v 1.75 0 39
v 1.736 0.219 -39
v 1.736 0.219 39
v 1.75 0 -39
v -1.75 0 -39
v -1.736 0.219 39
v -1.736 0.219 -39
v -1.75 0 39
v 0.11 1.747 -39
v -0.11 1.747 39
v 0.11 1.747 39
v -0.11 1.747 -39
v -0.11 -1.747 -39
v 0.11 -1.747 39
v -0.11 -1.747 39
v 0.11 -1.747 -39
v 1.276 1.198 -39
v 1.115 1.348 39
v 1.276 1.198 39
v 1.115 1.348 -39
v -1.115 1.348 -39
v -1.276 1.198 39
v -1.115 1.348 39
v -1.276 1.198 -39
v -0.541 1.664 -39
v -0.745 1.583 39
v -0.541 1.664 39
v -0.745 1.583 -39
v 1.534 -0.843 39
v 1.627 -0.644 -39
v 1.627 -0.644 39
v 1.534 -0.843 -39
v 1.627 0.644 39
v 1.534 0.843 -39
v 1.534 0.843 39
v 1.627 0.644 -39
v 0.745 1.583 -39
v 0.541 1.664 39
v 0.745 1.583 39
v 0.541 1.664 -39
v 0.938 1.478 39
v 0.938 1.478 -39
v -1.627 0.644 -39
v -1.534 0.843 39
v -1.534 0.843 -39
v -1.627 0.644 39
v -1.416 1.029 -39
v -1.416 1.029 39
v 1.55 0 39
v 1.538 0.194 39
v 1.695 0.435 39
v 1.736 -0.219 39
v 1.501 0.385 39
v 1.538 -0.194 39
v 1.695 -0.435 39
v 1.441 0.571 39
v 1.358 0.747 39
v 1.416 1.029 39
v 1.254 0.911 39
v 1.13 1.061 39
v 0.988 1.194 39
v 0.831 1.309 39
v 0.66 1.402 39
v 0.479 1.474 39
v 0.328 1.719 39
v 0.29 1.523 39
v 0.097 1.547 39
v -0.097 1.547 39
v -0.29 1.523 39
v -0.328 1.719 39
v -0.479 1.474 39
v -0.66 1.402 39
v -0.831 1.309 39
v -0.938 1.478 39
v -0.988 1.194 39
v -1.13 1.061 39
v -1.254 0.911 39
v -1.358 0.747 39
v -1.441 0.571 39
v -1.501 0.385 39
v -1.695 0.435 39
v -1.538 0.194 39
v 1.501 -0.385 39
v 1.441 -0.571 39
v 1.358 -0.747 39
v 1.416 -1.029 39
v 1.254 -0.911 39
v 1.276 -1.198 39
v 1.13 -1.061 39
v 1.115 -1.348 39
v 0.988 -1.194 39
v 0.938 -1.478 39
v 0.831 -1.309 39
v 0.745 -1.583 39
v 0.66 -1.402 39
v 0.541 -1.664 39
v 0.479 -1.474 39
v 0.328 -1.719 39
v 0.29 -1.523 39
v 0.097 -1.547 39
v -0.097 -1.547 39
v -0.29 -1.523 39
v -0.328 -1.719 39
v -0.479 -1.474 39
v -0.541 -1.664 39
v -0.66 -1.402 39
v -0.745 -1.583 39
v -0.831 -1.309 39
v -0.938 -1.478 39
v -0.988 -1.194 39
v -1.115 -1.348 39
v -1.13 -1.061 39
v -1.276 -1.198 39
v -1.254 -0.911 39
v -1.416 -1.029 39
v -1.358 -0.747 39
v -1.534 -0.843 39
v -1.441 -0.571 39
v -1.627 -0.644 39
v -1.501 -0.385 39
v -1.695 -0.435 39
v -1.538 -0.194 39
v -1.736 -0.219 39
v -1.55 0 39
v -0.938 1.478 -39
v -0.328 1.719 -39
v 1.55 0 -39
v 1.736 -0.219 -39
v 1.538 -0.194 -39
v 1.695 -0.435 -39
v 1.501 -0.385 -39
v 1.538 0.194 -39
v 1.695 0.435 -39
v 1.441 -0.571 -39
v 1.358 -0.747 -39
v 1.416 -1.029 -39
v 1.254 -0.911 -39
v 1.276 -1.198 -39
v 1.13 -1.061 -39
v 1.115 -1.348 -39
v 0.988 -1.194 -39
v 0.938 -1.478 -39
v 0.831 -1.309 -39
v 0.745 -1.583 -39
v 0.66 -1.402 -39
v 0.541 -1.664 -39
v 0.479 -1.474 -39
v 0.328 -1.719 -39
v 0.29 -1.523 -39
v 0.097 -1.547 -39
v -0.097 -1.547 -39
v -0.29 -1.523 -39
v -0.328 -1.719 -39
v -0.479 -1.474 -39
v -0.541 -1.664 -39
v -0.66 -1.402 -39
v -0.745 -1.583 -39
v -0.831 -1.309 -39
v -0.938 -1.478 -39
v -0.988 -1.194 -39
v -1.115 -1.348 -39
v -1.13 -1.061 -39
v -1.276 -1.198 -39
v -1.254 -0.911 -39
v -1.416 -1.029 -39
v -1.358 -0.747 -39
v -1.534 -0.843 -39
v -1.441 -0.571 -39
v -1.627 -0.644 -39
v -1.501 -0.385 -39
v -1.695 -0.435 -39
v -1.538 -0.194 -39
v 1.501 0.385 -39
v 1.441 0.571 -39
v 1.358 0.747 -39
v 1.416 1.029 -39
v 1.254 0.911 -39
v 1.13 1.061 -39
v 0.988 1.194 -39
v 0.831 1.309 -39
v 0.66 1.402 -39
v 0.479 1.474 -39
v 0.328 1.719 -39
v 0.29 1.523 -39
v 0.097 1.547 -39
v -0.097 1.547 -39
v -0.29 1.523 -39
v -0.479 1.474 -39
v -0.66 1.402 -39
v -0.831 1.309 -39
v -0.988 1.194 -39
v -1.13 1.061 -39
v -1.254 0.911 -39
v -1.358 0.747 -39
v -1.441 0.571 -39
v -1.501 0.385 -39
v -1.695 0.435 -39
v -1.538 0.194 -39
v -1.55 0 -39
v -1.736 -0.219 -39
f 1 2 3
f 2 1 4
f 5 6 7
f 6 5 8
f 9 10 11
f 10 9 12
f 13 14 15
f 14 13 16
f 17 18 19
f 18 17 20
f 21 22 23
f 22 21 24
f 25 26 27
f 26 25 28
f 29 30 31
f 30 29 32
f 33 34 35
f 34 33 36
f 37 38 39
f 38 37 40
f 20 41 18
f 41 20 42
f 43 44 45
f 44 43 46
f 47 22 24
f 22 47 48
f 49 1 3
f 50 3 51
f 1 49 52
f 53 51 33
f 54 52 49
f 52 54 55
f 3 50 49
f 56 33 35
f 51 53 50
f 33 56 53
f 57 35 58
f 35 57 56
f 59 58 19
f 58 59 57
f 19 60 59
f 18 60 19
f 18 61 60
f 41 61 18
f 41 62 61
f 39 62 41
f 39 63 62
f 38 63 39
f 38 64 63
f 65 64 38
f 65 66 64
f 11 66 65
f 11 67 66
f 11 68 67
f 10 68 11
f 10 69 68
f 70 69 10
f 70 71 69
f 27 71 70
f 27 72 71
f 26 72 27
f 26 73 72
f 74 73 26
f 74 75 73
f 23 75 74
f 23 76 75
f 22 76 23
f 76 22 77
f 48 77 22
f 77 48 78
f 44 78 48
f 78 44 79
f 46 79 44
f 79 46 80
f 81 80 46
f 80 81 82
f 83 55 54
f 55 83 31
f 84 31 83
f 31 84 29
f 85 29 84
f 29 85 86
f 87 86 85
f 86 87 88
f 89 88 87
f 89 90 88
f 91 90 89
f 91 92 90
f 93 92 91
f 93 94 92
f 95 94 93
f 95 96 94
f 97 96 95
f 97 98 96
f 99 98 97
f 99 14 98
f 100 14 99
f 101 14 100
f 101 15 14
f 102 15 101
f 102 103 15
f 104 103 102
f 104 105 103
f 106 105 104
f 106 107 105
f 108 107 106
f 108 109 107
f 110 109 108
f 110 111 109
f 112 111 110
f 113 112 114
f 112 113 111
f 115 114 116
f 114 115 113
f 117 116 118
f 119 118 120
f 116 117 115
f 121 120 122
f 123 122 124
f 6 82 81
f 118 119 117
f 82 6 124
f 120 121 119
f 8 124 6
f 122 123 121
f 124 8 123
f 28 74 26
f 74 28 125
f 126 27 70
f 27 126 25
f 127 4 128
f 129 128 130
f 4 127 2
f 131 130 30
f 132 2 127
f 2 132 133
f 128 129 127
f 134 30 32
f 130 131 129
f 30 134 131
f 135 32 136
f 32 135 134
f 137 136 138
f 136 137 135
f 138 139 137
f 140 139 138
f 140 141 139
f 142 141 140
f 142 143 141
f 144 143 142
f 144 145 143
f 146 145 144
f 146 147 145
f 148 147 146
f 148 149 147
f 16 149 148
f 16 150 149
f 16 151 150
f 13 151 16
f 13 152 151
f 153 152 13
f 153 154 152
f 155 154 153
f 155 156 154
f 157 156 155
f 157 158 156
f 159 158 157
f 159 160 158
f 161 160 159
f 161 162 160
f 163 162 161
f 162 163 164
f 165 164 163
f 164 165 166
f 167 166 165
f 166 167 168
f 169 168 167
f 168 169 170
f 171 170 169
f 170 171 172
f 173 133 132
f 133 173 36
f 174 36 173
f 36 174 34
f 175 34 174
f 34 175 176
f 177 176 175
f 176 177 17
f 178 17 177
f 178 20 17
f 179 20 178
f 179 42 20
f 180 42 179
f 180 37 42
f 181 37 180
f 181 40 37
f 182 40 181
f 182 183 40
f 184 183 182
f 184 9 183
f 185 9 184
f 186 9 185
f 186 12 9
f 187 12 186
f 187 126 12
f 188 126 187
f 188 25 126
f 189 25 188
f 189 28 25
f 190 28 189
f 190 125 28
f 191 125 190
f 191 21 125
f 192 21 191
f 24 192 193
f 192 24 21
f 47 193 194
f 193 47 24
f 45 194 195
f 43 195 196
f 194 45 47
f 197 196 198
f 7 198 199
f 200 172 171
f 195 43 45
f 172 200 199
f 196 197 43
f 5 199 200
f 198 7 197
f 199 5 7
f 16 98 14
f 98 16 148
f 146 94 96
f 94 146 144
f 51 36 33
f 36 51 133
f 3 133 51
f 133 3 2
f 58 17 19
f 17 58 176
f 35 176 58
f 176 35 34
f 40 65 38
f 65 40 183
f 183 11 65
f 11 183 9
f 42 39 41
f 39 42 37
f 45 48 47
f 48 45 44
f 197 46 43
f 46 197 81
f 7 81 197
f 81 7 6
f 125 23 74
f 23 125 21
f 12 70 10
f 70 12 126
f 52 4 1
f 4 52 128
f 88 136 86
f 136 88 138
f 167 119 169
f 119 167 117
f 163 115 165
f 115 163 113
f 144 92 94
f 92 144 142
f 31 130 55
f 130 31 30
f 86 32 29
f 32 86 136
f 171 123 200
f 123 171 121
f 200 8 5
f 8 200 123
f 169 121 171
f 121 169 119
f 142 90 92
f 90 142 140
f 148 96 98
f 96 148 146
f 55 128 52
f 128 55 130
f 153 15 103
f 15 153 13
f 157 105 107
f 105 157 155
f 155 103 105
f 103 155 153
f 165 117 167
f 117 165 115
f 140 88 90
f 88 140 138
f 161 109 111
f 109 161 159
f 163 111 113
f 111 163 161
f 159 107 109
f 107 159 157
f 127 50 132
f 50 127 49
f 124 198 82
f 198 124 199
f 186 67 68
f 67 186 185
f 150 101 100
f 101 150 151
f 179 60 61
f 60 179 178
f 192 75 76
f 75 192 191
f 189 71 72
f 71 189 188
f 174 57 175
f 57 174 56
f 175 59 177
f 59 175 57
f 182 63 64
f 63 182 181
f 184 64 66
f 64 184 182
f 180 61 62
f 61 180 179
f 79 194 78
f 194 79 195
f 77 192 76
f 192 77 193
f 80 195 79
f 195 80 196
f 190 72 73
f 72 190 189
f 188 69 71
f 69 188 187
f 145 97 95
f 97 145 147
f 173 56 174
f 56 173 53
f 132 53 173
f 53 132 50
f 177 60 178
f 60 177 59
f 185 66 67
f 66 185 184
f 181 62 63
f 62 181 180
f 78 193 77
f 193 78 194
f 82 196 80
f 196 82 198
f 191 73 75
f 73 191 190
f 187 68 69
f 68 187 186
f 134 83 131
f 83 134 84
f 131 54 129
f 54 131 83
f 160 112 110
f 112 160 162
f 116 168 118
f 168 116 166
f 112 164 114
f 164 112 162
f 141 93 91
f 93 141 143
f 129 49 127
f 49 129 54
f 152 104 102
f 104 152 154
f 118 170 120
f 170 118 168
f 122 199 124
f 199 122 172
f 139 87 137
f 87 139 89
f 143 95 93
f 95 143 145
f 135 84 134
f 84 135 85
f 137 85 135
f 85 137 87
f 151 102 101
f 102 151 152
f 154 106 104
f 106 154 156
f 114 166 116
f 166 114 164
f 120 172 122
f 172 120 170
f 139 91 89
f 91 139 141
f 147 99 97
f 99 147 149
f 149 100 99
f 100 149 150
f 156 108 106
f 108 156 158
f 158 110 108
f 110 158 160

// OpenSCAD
$fn = 50;


difference() {
	union() {
		translate(v = [0, 0, -39.0000000000]) {
			cylinder(h = 78, r = 1.7500000000);
		}
	}
	union() {
		translate(v = [0, 0, -100.0000000000]) {
			cylinder(h = 200, r = 1.5500000000);
		}
	}
}
